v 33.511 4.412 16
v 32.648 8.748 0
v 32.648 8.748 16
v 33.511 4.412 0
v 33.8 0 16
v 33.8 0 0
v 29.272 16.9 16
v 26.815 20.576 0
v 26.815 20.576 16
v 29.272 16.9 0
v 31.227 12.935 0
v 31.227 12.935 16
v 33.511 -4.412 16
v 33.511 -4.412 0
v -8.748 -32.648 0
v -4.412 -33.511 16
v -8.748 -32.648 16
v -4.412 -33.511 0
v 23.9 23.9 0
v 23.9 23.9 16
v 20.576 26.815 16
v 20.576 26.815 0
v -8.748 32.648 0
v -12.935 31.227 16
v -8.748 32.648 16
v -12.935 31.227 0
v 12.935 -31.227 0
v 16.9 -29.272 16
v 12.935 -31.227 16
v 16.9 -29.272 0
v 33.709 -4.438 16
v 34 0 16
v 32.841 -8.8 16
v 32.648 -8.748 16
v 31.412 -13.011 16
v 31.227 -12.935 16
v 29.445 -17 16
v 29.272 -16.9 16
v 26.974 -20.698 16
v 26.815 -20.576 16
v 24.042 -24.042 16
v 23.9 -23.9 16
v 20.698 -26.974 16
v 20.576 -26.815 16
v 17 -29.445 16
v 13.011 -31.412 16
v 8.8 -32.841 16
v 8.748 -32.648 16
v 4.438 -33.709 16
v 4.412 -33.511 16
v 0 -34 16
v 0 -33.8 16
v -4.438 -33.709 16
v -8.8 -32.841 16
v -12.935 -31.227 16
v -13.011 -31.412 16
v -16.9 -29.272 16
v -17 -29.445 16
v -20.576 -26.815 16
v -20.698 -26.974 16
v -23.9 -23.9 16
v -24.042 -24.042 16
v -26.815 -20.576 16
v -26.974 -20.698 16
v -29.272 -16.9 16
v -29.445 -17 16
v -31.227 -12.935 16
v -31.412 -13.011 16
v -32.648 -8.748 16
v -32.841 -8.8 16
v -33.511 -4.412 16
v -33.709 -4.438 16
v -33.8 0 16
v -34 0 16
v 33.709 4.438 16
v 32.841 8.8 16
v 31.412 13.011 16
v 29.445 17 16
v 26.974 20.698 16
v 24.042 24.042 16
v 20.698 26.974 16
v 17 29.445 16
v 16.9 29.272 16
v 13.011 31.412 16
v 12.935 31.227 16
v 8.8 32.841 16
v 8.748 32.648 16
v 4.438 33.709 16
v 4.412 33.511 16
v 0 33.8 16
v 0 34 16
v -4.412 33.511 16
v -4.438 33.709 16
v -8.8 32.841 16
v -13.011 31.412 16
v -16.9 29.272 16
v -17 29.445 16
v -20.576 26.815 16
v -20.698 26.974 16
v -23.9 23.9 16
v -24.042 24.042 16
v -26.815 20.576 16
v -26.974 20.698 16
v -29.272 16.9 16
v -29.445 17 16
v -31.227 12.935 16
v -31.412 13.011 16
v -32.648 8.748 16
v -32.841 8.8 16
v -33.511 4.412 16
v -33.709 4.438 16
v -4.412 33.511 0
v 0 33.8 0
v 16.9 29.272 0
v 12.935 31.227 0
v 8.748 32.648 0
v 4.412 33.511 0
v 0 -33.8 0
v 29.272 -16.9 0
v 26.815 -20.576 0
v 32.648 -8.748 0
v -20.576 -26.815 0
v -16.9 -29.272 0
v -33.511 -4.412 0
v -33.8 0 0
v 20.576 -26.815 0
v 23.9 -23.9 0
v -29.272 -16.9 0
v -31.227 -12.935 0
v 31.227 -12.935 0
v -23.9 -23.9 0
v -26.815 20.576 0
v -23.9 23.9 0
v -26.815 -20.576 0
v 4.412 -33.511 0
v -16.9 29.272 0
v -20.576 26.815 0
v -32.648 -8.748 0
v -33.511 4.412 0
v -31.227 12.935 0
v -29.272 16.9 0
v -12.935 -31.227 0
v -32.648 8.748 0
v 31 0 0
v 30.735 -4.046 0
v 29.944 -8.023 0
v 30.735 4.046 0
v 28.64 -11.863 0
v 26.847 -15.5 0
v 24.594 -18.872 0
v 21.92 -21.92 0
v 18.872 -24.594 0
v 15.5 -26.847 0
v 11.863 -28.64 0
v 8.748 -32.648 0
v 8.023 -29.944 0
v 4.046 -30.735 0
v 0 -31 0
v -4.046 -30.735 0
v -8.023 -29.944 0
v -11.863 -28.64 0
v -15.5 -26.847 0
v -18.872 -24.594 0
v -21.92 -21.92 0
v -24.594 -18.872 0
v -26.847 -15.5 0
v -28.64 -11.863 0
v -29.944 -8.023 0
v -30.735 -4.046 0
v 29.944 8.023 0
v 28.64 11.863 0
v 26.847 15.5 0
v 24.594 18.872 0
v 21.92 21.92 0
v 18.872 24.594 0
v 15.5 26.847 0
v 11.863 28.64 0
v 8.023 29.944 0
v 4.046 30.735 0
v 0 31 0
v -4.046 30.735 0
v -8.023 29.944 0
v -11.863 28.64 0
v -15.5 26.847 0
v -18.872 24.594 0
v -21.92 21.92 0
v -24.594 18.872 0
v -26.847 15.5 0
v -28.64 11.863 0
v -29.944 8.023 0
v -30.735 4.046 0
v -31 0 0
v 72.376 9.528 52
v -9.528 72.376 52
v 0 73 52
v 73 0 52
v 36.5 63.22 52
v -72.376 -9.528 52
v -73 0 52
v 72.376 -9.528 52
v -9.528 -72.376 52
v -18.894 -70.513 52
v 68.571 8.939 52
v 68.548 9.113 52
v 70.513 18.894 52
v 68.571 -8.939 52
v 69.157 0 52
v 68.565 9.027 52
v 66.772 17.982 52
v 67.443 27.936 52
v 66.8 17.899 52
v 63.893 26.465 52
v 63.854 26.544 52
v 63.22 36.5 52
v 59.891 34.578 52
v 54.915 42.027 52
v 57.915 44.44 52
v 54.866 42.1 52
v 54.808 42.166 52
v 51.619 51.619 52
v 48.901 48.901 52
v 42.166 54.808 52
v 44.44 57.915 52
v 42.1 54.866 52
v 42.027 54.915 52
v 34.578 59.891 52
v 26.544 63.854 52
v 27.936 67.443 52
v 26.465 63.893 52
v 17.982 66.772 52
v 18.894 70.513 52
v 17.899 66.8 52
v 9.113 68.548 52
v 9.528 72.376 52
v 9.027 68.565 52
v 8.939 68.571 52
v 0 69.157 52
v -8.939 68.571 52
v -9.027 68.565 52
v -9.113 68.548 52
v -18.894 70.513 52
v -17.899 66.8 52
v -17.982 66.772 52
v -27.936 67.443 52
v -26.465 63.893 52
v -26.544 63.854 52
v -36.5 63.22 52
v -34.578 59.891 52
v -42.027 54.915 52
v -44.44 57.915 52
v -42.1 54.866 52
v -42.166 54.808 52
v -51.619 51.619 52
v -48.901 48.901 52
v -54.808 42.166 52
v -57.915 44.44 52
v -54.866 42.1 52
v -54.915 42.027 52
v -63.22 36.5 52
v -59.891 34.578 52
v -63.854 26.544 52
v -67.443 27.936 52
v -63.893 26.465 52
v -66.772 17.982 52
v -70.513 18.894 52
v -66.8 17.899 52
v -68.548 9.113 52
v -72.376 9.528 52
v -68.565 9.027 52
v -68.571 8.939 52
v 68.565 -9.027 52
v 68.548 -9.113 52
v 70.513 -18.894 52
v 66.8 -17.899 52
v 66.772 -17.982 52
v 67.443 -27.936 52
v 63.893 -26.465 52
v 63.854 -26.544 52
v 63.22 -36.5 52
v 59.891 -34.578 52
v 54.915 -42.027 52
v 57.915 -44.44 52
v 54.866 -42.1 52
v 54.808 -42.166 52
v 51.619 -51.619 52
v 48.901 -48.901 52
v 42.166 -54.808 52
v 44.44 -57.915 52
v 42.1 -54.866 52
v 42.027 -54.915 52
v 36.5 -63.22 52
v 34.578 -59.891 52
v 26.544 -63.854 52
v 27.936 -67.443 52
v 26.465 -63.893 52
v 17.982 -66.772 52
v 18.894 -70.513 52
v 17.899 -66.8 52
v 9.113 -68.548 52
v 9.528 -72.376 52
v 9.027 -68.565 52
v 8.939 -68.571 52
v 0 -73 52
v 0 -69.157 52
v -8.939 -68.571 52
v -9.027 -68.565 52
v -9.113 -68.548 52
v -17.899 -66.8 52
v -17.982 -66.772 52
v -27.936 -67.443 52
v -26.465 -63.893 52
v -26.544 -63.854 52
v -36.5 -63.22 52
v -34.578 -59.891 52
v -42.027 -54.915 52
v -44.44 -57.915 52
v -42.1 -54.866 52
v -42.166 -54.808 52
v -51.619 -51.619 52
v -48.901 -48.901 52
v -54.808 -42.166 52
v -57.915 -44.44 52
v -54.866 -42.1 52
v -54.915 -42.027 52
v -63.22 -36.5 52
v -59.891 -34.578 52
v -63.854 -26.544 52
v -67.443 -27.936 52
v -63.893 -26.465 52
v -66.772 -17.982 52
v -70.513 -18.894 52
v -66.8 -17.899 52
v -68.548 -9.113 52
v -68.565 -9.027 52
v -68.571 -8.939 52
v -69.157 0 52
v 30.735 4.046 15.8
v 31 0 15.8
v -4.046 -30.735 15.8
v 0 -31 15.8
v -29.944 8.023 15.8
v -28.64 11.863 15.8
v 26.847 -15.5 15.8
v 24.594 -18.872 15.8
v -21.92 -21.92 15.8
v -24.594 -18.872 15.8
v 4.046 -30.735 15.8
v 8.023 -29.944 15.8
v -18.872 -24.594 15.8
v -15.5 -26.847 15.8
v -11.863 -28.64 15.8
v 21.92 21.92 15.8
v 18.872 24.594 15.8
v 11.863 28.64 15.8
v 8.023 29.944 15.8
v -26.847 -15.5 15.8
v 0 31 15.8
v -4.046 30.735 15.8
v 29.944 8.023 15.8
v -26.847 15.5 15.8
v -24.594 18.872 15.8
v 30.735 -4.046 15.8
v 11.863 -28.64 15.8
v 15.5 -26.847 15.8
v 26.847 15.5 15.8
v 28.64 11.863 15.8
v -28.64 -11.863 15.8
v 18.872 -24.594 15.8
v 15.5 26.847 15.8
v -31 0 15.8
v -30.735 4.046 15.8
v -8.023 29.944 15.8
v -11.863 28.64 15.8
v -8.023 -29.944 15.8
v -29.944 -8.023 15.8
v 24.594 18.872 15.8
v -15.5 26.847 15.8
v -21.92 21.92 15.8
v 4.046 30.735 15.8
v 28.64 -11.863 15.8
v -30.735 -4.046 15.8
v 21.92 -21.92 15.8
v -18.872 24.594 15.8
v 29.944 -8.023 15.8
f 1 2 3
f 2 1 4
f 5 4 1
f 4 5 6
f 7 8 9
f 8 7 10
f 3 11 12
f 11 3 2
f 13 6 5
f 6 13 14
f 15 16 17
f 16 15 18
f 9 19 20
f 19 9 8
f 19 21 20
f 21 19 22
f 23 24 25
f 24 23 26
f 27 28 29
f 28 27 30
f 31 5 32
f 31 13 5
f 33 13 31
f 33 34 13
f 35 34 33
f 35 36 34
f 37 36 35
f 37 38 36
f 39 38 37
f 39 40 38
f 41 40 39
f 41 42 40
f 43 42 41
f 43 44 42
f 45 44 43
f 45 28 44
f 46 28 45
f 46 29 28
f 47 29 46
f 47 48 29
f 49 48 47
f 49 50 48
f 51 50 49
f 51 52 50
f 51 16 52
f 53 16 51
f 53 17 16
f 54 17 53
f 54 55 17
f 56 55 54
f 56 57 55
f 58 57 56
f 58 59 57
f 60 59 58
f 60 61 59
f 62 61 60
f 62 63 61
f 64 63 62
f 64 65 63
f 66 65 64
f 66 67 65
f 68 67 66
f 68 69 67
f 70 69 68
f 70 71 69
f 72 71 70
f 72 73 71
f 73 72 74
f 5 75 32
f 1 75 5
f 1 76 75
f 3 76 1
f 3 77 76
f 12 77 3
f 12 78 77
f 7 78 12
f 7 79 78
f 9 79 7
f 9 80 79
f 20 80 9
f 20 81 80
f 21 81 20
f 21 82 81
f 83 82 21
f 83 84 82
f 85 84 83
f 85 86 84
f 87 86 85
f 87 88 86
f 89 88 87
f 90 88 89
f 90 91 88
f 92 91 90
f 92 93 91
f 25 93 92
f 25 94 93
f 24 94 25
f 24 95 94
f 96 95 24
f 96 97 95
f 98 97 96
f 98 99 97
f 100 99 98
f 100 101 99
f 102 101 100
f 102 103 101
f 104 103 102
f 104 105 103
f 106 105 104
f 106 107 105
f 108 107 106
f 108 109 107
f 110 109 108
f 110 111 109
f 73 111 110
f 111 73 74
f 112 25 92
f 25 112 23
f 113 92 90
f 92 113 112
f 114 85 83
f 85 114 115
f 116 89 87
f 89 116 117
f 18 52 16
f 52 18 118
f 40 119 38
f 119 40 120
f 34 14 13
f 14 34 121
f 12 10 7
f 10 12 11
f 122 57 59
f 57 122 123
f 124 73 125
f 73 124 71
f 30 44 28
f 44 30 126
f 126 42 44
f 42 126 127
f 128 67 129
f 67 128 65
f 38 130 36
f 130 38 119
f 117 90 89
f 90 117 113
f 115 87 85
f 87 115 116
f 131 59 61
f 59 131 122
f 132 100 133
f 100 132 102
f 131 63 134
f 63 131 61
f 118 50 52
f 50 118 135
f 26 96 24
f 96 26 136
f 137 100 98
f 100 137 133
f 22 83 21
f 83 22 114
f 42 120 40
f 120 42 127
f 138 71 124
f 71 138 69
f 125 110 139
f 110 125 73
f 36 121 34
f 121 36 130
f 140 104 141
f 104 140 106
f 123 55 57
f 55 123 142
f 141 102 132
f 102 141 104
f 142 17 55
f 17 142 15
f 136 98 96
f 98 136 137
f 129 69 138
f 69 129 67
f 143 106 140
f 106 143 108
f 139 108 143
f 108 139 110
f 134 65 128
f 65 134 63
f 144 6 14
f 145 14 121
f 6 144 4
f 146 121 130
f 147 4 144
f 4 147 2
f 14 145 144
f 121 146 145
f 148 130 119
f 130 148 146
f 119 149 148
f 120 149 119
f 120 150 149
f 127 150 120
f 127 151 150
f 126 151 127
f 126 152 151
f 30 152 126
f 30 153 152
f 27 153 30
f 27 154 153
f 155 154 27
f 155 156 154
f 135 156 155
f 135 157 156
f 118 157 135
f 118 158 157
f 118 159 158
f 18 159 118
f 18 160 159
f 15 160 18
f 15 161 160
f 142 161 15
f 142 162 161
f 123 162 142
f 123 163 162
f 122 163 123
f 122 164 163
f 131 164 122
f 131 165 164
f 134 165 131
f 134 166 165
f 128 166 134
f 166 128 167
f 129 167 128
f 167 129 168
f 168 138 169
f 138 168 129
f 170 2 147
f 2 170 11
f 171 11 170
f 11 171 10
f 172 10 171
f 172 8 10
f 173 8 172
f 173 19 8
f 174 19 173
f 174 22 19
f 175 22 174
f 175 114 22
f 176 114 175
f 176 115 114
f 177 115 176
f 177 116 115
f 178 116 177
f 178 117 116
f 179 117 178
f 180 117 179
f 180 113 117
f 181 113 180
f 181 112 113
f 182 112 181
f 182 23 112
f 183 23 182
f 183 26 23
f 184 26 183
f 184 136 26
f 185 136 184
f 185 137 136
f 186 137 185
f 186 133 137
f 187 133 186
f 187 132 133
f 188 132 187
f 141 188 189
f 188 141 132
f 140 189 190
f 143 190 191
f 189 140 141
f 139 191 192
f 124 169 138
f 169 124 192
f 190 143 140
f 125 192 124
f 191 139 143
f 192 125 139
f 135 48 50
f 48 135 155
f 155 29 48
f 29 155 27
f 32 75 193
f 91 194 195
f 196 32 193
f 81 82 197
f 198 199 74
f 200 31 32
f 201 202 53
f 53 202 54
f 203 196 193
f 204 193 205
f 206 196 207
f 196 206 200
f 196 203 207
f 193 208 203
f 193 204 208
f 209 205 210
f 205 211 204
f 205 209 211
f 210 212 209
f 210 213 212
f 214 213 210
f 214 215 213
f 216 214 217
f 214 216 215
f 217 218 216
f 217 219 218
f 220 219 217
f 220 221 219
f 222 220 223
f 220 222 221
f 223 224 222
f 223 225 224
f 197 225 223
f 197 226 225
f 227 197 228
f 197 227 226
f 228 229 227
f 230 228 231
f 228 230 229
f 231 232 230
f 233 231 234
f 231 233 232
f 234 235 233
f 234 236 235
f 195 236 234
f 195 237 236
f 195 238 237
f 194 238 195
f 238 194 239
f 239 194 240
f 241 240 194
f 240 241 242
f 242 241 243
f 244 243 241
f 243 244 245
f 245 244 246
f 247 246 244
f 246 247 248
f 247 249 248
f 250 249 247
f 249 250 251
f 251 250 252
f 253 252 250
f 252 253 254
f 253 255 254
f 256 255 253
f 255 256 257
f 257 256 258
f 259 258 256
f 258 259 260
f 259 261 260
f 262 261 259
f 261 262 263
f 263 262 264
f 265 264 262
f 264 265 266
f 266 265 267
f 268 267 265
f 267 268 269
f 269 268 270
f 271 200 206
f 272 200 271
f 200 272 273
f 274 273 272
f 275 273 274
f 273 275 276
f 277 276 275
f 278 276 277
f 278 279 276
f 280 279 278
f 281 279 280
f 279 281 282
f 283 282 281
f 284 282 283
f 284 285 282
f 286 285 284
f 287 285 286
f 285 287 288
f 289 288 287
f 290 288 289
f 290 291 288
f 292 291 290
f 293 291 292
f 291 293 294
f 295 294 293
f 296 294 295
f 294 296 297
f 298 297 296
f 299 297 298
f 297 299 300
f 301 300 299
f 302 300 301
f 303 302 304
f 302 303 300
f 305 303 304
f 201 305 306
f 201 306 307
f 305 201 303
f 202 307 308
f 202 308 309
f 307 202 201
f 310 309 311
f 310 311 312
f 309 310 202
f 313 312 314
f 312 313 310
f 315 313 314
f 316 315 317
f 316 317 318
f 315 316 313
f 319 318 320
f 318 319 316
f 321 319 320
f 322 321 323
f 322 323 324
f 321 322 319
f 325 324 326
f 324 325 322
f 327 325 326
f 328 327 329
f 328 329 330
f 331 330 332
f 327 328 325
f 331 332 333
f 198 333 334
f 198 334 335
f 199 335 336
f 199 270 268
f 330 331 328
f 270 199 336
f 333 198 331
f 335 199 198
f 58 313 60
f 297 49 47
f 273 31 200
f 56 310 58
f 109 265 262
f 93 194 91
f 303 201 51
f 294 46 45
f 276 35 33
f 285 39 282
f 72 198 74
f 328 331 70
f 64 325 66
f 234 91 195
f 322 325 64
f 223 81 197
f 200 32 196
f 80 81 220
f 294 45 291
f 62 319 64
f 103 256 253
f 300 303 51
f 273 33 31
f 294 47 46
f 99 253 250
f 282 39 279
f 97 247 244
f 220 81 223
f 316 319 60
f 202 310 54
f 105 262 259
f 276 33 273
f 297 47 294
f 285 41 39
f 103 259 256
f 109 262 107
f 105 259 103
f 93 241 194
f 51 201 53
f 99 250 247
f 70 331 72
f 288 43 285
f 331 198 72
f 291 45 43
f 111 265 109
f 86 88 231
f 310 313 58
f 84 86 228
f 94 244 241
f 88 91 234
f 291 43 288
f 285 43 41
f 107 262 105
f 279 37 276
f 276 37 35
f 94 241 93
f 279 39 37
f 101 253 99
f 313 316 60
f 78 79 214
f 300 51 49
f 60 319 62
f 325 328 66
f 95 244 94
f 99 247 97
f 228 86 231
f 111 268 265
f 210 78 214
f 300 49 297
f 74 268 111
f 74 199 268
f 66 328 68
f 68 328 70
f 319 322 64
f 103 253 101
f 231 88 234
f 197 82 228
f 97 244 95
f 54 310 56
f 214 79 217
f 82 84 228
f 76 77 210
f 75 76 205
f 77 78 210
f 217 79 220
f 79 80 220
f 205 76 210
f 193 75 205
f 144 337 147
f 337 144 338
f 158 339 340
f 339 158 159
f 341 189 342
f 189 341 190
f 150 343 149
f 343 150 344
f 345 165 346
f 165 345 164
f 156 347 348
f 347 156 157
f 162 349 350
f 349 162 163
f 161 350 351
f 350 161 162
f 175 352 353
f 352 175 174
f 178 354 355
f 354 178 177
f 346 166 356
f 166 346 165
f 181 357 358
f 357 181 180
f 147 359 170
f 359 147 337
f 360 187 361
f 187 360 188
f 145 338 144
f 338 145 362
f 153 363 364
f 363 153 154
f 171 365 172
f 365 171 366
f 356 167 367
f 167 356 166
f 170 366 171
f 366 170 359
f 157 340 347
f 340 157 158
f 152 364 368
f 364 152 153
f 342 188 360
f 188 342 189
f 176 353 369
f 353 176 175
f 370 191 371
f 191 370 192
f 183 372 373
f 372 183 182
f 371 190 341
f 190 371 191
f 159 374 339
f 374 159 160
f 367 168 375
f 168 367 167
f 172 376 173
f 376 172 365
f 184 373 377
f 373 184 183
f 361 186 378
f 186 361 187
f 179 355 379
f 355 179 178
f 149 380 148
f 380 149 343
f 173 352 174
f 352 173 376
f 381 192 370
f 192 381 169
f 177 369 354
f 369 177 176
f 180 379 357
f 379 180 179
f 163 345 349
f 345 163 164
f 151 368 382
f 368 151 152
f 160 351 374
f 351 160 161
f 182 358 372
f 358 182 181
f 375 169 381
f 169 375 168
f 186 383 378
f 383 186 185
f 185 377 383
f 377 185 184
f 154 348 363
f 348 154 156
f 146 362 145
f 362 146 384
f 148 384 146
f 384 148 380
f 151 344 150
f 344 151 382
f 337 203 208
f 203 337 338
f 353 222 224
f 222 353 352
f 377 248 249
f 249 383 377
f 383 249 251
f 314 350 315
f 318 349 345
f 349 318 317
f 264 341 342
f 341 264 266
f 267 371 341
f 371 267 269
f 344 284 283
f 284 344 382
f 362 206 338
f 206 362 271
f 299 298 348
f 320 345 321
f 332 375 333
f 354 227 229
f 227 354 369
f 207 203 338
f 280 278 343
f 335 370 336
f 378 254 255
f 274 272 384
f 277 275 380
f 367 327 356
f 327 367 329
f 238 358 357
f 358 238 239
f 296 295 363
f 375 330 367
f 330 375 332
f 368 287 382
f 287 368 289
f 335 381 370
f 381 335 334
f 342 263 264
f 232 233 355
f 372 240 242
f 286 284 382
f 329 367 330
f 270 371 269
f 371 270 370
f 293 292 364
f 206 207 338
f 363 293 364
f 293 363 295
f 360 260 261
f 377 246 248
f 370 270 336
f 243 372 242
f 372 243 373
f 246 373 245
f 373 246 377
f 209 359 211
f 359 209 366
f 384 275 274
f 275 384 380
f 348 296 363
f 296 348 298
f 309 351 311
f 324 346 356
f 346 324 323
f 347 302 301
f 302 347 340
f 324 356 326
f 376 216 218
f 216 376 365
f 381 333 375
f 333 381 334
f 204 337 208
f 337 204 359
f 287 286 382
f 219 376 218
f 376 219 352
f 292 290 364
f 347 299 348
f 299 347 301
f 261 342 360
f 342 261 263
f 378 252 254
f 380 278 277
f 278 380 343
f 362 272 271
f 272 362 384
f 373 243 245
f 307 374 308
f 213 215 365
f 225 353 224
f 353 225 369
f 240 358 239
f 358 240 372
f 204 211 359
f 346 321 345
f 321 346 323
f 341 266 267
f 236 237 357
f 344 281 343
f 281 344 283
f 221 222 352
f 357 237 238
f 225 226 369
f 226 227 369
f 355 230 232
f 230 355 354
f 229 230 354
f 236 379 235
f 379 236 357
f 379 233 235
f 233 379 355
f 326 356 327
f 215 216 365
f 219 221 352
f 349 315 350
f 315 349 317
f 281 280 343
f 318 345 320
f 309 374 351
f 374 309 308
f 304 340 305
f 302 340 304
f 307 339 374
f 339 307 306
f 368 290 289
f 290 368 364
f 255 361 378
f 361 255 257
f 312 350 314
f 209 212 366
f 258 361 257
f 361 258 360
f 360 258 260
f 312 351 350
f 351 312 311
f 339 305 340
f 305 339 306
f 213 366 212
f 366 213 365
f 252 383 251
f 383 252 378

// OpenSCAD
// ============================================================================
// Get Me An Alt — Parametric OpenSCAD Module
// Part: PRT-05 — Swirl-Recovery Acoustic Diffuser Transition Cone (diffuser-stator-cone)
// Function: Transitions circular blower outlet into the oval airfoil neck.
// Target Bounding Box (mm): [146, 146, 52]
// Print Material: PLA+ | Min Wall: >= 1.6mm | Tolerance: 0.2mm
// ============================================================================
$fn = 48;
part_width = 146;
part_depth = 146;
part_height = 52;
wall_thickness = 3;
floor_thickness = 3;
corner_radius = 4;
tolerance = 0.2;
m3_clearance_d = 3.4; // M3 screw clearance hole (3.0mm + 2*0.2mm)

module rounded_rect_prism(w, d, h, r) {
  cr = max(0.5, min(r, min(w, d) / 2 - 0.1));
  linear_extrude(height = h)
    offset(r = cr)
      offset(r = -cr)
        square([w, d], center = true);
}

module part_diffuser_stator_cone() {
  difference() {
    union() {
      // Lower insertion spout
      cylinder(h = 16, r = 34 - tolerance);
      // Upper conical funnel body
      translate([0, 0, 16])
        cylinder(h = 36, r1 = 34, r2 = 73);
    }
    // Hollow internal flow passage
    translate([0, 0, -0.5])
      cylinder(h = 17, r = 31);
    translate([0, 0, 15.8])
      cylinder(h = 37, r1 = 31, r2 = 70);
  }
}

part_diffuser_stator_cone();
